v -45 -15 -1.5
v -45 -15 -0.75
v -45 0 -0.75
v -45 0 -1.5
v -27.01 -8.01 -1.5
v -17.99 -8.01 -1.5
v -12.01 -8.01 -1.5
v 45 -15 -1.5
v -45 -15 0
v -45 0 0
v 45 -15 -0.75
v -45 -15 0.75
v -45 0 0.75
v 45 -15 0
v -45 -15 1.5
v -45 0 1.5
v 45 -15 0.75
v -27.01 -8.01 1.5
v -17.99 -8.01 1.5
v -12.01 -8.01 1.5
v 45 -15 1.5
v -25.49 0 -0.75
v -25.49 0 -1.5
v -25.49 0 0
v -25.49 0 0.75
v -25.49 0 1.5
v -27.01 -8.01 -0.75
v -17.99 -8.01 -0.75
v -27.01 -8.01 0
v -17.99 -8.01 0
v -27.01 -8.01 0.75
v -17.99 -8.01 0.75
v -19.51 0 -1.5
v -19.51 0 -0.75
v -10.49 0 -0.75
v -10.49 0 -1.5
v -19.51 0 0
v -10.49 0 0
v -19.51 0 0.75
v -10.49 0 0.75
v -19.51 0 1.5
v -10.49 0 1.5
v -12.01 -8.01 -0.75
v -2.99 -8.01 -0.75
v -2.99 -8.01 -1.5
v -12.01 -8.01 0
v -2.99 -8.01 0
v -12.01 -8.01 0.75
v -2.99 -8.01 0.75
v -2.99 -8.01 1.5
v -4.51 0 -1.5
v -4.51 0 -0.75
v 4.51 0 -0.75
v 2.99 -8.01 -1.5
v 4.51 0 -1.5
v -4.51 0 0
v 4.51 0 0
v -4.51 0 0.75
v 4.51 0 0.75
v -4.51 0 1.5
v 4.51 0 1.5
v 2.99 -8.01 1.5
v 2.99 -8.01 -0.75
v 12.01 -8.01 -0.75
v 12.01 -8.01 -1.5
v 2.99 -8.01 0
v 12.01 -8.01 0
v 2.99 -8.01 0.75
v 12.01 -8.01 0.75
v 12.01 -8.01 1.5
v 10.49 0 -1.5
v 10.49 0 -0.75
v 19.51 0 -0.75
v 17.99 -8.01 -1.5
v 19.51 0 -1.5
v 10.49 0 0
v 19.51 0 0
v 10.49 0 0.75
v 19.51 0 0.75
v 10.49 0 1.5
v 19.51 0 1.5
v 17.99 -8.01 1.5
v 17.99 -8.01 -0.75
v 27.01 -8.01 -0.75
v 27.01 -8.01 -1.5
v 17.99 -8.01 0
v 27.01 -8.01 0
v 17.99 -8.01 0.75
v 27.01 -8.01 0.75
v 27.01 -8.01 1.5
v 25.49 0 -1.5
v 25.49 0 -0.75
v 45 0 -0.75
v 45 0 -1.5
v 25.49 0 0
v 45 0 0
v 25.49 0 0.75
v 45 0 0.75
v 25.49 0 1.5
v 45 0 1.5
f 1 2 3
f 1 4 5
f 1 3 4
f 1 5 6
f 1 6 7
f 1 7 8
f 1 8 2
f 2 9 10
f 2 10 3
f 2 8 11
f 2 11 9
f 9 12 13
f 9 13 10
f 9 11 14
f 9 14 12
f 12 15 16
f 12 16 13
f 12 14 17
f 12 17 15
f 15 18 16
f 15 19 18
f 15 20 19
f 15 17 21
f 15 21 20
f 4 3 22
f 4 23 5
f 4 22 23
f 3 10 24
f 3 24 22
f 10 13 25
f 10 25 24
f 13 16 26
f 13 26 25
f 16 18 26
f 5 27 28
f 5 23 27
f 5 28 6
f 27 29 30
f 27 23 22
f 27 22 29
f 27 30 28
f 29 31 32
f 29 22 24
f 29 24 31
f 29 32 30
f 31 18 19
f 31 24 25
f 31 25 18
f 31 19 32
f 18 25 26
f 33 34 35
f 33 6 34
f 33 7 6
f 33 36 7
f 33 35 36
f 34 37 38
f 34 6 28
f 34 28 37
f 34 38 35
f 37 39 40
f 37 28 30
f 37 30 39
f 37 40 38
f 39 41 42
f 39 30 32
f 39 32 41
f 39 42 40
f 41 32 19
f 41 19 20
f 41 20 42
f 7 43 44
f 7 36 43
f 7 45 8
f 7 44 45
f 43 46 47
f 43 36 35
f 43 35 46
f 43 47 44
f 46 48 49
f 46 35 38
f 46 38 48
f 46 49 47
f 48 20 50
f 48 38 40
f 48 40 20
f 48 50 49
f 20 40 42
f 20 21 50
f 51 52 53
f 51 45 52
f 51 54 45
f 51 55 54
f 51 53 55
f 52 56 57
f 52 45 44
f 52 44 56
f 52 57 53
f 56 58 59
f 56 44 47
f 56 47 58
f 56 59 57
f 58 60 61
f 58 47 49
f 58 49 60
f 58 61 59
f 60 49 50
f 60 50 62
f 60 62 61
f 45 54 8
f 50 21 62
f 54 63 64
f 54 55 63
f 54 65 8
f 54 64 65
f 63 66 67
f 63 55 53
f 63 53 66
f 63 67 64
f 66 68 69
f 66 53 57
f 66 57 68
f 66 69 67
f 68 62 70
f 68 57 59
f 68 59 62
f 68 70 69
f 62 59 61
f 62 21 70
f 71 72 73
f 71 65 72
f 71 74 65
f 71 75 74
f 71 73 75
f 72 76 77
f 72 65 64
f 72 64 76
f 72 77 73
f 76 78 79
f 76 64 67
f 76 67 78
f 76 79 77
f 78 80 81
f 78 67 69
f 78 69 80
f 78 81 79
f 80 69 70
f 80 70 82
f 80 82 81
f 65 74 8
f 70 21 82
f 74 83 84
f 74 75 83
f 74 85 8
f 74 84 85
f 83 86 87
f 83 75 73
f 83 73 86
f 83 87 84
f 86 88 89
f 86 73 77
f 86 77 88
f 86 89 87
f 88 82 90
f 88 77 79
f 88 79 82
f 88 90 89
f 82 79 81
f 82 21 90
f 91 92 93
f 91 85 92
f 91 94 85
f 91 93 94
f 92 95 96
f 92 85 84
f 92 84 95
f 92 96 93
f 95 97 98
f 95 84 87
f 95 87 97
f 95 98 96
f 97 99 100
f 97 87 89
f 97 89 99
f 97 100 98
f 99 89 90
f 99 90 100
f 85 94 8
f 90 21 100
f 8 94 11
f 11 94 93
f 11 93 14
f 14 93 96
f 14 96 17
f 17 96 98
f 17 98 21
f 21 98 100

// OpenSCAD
// Start: lazy_union
default_5_default_5();
// End: lazy_union

// Modules.

// 'PartMaterial undef-default - default 5.0'
module default_5_default_5() {
  // 'None : _combine_solids_and_holes'
  union() {
    // 'default : _combine_solids_and_holes'
    union() {
      // 'front'
      multmatrix(m=[[-1.0, 0.0, 0.0, 0.0], [0.0, -1.0, 0.0, 0.0], [0.0, 0.0, 1.0, -1.5], [0.0, 0.0, 0.0, 1.0]]) {
        // 'front : _combine_solids_and_holes'
        union() {
          // 'front'
          linear_extrude(height=3.0, twist=0.0, slices=4, scale=[1.0, 1.0]) {
            polygon(points=[[0.0, 0.0], [0.0, 0.0], [-4.51, 0.0], [-2.99, 8.01], [-7.5, 8.01], [-12.01, 8.01], [-10.49, 0.0], [-15.0, 0.0], [-15.0, 0.0], [-19.509999999999998, 0.0], [-17.990000000000002, 8.01], [-22.5, 8.01], [-27.009999999999998, 8.01], [-25.490000000000002, 0.0], [-30.0, 0.0], [-45.0, 0.0], [-45.0, 15.0], [0.0, 15.0], [45.0, 15.0], [45.0, 0.0], [30.0, 0.0], [30.0, 0.0], [25.490000000000002, 0.0], [27.009999999999998, 8.01], [22.5, 8.01], [17.990000000000002, 8.01], [19.509999999999998, 0.0], [15.0, 0.0], [15.0, 0.0], [10.49, 0.0], [12.01, 8.01], [7.5, 8.01], [2.99, 8.01], [4.51, 0.0], [0.0, 0.0]], paths=[[-1], [0, 1, 2, 3, 4, 5, 6, 0], [7, 8, 9, 10, 11, 12, 13, 14, 15, 16, 17, 18, 19, 7], [20, 21, 22, 23, 24, 25, 26, 20], [27, 28, 29, 30, 31, 32, 33, 34, 27]]);
          }
        }
      }
    }
  }
} // end module default_5_default_5
